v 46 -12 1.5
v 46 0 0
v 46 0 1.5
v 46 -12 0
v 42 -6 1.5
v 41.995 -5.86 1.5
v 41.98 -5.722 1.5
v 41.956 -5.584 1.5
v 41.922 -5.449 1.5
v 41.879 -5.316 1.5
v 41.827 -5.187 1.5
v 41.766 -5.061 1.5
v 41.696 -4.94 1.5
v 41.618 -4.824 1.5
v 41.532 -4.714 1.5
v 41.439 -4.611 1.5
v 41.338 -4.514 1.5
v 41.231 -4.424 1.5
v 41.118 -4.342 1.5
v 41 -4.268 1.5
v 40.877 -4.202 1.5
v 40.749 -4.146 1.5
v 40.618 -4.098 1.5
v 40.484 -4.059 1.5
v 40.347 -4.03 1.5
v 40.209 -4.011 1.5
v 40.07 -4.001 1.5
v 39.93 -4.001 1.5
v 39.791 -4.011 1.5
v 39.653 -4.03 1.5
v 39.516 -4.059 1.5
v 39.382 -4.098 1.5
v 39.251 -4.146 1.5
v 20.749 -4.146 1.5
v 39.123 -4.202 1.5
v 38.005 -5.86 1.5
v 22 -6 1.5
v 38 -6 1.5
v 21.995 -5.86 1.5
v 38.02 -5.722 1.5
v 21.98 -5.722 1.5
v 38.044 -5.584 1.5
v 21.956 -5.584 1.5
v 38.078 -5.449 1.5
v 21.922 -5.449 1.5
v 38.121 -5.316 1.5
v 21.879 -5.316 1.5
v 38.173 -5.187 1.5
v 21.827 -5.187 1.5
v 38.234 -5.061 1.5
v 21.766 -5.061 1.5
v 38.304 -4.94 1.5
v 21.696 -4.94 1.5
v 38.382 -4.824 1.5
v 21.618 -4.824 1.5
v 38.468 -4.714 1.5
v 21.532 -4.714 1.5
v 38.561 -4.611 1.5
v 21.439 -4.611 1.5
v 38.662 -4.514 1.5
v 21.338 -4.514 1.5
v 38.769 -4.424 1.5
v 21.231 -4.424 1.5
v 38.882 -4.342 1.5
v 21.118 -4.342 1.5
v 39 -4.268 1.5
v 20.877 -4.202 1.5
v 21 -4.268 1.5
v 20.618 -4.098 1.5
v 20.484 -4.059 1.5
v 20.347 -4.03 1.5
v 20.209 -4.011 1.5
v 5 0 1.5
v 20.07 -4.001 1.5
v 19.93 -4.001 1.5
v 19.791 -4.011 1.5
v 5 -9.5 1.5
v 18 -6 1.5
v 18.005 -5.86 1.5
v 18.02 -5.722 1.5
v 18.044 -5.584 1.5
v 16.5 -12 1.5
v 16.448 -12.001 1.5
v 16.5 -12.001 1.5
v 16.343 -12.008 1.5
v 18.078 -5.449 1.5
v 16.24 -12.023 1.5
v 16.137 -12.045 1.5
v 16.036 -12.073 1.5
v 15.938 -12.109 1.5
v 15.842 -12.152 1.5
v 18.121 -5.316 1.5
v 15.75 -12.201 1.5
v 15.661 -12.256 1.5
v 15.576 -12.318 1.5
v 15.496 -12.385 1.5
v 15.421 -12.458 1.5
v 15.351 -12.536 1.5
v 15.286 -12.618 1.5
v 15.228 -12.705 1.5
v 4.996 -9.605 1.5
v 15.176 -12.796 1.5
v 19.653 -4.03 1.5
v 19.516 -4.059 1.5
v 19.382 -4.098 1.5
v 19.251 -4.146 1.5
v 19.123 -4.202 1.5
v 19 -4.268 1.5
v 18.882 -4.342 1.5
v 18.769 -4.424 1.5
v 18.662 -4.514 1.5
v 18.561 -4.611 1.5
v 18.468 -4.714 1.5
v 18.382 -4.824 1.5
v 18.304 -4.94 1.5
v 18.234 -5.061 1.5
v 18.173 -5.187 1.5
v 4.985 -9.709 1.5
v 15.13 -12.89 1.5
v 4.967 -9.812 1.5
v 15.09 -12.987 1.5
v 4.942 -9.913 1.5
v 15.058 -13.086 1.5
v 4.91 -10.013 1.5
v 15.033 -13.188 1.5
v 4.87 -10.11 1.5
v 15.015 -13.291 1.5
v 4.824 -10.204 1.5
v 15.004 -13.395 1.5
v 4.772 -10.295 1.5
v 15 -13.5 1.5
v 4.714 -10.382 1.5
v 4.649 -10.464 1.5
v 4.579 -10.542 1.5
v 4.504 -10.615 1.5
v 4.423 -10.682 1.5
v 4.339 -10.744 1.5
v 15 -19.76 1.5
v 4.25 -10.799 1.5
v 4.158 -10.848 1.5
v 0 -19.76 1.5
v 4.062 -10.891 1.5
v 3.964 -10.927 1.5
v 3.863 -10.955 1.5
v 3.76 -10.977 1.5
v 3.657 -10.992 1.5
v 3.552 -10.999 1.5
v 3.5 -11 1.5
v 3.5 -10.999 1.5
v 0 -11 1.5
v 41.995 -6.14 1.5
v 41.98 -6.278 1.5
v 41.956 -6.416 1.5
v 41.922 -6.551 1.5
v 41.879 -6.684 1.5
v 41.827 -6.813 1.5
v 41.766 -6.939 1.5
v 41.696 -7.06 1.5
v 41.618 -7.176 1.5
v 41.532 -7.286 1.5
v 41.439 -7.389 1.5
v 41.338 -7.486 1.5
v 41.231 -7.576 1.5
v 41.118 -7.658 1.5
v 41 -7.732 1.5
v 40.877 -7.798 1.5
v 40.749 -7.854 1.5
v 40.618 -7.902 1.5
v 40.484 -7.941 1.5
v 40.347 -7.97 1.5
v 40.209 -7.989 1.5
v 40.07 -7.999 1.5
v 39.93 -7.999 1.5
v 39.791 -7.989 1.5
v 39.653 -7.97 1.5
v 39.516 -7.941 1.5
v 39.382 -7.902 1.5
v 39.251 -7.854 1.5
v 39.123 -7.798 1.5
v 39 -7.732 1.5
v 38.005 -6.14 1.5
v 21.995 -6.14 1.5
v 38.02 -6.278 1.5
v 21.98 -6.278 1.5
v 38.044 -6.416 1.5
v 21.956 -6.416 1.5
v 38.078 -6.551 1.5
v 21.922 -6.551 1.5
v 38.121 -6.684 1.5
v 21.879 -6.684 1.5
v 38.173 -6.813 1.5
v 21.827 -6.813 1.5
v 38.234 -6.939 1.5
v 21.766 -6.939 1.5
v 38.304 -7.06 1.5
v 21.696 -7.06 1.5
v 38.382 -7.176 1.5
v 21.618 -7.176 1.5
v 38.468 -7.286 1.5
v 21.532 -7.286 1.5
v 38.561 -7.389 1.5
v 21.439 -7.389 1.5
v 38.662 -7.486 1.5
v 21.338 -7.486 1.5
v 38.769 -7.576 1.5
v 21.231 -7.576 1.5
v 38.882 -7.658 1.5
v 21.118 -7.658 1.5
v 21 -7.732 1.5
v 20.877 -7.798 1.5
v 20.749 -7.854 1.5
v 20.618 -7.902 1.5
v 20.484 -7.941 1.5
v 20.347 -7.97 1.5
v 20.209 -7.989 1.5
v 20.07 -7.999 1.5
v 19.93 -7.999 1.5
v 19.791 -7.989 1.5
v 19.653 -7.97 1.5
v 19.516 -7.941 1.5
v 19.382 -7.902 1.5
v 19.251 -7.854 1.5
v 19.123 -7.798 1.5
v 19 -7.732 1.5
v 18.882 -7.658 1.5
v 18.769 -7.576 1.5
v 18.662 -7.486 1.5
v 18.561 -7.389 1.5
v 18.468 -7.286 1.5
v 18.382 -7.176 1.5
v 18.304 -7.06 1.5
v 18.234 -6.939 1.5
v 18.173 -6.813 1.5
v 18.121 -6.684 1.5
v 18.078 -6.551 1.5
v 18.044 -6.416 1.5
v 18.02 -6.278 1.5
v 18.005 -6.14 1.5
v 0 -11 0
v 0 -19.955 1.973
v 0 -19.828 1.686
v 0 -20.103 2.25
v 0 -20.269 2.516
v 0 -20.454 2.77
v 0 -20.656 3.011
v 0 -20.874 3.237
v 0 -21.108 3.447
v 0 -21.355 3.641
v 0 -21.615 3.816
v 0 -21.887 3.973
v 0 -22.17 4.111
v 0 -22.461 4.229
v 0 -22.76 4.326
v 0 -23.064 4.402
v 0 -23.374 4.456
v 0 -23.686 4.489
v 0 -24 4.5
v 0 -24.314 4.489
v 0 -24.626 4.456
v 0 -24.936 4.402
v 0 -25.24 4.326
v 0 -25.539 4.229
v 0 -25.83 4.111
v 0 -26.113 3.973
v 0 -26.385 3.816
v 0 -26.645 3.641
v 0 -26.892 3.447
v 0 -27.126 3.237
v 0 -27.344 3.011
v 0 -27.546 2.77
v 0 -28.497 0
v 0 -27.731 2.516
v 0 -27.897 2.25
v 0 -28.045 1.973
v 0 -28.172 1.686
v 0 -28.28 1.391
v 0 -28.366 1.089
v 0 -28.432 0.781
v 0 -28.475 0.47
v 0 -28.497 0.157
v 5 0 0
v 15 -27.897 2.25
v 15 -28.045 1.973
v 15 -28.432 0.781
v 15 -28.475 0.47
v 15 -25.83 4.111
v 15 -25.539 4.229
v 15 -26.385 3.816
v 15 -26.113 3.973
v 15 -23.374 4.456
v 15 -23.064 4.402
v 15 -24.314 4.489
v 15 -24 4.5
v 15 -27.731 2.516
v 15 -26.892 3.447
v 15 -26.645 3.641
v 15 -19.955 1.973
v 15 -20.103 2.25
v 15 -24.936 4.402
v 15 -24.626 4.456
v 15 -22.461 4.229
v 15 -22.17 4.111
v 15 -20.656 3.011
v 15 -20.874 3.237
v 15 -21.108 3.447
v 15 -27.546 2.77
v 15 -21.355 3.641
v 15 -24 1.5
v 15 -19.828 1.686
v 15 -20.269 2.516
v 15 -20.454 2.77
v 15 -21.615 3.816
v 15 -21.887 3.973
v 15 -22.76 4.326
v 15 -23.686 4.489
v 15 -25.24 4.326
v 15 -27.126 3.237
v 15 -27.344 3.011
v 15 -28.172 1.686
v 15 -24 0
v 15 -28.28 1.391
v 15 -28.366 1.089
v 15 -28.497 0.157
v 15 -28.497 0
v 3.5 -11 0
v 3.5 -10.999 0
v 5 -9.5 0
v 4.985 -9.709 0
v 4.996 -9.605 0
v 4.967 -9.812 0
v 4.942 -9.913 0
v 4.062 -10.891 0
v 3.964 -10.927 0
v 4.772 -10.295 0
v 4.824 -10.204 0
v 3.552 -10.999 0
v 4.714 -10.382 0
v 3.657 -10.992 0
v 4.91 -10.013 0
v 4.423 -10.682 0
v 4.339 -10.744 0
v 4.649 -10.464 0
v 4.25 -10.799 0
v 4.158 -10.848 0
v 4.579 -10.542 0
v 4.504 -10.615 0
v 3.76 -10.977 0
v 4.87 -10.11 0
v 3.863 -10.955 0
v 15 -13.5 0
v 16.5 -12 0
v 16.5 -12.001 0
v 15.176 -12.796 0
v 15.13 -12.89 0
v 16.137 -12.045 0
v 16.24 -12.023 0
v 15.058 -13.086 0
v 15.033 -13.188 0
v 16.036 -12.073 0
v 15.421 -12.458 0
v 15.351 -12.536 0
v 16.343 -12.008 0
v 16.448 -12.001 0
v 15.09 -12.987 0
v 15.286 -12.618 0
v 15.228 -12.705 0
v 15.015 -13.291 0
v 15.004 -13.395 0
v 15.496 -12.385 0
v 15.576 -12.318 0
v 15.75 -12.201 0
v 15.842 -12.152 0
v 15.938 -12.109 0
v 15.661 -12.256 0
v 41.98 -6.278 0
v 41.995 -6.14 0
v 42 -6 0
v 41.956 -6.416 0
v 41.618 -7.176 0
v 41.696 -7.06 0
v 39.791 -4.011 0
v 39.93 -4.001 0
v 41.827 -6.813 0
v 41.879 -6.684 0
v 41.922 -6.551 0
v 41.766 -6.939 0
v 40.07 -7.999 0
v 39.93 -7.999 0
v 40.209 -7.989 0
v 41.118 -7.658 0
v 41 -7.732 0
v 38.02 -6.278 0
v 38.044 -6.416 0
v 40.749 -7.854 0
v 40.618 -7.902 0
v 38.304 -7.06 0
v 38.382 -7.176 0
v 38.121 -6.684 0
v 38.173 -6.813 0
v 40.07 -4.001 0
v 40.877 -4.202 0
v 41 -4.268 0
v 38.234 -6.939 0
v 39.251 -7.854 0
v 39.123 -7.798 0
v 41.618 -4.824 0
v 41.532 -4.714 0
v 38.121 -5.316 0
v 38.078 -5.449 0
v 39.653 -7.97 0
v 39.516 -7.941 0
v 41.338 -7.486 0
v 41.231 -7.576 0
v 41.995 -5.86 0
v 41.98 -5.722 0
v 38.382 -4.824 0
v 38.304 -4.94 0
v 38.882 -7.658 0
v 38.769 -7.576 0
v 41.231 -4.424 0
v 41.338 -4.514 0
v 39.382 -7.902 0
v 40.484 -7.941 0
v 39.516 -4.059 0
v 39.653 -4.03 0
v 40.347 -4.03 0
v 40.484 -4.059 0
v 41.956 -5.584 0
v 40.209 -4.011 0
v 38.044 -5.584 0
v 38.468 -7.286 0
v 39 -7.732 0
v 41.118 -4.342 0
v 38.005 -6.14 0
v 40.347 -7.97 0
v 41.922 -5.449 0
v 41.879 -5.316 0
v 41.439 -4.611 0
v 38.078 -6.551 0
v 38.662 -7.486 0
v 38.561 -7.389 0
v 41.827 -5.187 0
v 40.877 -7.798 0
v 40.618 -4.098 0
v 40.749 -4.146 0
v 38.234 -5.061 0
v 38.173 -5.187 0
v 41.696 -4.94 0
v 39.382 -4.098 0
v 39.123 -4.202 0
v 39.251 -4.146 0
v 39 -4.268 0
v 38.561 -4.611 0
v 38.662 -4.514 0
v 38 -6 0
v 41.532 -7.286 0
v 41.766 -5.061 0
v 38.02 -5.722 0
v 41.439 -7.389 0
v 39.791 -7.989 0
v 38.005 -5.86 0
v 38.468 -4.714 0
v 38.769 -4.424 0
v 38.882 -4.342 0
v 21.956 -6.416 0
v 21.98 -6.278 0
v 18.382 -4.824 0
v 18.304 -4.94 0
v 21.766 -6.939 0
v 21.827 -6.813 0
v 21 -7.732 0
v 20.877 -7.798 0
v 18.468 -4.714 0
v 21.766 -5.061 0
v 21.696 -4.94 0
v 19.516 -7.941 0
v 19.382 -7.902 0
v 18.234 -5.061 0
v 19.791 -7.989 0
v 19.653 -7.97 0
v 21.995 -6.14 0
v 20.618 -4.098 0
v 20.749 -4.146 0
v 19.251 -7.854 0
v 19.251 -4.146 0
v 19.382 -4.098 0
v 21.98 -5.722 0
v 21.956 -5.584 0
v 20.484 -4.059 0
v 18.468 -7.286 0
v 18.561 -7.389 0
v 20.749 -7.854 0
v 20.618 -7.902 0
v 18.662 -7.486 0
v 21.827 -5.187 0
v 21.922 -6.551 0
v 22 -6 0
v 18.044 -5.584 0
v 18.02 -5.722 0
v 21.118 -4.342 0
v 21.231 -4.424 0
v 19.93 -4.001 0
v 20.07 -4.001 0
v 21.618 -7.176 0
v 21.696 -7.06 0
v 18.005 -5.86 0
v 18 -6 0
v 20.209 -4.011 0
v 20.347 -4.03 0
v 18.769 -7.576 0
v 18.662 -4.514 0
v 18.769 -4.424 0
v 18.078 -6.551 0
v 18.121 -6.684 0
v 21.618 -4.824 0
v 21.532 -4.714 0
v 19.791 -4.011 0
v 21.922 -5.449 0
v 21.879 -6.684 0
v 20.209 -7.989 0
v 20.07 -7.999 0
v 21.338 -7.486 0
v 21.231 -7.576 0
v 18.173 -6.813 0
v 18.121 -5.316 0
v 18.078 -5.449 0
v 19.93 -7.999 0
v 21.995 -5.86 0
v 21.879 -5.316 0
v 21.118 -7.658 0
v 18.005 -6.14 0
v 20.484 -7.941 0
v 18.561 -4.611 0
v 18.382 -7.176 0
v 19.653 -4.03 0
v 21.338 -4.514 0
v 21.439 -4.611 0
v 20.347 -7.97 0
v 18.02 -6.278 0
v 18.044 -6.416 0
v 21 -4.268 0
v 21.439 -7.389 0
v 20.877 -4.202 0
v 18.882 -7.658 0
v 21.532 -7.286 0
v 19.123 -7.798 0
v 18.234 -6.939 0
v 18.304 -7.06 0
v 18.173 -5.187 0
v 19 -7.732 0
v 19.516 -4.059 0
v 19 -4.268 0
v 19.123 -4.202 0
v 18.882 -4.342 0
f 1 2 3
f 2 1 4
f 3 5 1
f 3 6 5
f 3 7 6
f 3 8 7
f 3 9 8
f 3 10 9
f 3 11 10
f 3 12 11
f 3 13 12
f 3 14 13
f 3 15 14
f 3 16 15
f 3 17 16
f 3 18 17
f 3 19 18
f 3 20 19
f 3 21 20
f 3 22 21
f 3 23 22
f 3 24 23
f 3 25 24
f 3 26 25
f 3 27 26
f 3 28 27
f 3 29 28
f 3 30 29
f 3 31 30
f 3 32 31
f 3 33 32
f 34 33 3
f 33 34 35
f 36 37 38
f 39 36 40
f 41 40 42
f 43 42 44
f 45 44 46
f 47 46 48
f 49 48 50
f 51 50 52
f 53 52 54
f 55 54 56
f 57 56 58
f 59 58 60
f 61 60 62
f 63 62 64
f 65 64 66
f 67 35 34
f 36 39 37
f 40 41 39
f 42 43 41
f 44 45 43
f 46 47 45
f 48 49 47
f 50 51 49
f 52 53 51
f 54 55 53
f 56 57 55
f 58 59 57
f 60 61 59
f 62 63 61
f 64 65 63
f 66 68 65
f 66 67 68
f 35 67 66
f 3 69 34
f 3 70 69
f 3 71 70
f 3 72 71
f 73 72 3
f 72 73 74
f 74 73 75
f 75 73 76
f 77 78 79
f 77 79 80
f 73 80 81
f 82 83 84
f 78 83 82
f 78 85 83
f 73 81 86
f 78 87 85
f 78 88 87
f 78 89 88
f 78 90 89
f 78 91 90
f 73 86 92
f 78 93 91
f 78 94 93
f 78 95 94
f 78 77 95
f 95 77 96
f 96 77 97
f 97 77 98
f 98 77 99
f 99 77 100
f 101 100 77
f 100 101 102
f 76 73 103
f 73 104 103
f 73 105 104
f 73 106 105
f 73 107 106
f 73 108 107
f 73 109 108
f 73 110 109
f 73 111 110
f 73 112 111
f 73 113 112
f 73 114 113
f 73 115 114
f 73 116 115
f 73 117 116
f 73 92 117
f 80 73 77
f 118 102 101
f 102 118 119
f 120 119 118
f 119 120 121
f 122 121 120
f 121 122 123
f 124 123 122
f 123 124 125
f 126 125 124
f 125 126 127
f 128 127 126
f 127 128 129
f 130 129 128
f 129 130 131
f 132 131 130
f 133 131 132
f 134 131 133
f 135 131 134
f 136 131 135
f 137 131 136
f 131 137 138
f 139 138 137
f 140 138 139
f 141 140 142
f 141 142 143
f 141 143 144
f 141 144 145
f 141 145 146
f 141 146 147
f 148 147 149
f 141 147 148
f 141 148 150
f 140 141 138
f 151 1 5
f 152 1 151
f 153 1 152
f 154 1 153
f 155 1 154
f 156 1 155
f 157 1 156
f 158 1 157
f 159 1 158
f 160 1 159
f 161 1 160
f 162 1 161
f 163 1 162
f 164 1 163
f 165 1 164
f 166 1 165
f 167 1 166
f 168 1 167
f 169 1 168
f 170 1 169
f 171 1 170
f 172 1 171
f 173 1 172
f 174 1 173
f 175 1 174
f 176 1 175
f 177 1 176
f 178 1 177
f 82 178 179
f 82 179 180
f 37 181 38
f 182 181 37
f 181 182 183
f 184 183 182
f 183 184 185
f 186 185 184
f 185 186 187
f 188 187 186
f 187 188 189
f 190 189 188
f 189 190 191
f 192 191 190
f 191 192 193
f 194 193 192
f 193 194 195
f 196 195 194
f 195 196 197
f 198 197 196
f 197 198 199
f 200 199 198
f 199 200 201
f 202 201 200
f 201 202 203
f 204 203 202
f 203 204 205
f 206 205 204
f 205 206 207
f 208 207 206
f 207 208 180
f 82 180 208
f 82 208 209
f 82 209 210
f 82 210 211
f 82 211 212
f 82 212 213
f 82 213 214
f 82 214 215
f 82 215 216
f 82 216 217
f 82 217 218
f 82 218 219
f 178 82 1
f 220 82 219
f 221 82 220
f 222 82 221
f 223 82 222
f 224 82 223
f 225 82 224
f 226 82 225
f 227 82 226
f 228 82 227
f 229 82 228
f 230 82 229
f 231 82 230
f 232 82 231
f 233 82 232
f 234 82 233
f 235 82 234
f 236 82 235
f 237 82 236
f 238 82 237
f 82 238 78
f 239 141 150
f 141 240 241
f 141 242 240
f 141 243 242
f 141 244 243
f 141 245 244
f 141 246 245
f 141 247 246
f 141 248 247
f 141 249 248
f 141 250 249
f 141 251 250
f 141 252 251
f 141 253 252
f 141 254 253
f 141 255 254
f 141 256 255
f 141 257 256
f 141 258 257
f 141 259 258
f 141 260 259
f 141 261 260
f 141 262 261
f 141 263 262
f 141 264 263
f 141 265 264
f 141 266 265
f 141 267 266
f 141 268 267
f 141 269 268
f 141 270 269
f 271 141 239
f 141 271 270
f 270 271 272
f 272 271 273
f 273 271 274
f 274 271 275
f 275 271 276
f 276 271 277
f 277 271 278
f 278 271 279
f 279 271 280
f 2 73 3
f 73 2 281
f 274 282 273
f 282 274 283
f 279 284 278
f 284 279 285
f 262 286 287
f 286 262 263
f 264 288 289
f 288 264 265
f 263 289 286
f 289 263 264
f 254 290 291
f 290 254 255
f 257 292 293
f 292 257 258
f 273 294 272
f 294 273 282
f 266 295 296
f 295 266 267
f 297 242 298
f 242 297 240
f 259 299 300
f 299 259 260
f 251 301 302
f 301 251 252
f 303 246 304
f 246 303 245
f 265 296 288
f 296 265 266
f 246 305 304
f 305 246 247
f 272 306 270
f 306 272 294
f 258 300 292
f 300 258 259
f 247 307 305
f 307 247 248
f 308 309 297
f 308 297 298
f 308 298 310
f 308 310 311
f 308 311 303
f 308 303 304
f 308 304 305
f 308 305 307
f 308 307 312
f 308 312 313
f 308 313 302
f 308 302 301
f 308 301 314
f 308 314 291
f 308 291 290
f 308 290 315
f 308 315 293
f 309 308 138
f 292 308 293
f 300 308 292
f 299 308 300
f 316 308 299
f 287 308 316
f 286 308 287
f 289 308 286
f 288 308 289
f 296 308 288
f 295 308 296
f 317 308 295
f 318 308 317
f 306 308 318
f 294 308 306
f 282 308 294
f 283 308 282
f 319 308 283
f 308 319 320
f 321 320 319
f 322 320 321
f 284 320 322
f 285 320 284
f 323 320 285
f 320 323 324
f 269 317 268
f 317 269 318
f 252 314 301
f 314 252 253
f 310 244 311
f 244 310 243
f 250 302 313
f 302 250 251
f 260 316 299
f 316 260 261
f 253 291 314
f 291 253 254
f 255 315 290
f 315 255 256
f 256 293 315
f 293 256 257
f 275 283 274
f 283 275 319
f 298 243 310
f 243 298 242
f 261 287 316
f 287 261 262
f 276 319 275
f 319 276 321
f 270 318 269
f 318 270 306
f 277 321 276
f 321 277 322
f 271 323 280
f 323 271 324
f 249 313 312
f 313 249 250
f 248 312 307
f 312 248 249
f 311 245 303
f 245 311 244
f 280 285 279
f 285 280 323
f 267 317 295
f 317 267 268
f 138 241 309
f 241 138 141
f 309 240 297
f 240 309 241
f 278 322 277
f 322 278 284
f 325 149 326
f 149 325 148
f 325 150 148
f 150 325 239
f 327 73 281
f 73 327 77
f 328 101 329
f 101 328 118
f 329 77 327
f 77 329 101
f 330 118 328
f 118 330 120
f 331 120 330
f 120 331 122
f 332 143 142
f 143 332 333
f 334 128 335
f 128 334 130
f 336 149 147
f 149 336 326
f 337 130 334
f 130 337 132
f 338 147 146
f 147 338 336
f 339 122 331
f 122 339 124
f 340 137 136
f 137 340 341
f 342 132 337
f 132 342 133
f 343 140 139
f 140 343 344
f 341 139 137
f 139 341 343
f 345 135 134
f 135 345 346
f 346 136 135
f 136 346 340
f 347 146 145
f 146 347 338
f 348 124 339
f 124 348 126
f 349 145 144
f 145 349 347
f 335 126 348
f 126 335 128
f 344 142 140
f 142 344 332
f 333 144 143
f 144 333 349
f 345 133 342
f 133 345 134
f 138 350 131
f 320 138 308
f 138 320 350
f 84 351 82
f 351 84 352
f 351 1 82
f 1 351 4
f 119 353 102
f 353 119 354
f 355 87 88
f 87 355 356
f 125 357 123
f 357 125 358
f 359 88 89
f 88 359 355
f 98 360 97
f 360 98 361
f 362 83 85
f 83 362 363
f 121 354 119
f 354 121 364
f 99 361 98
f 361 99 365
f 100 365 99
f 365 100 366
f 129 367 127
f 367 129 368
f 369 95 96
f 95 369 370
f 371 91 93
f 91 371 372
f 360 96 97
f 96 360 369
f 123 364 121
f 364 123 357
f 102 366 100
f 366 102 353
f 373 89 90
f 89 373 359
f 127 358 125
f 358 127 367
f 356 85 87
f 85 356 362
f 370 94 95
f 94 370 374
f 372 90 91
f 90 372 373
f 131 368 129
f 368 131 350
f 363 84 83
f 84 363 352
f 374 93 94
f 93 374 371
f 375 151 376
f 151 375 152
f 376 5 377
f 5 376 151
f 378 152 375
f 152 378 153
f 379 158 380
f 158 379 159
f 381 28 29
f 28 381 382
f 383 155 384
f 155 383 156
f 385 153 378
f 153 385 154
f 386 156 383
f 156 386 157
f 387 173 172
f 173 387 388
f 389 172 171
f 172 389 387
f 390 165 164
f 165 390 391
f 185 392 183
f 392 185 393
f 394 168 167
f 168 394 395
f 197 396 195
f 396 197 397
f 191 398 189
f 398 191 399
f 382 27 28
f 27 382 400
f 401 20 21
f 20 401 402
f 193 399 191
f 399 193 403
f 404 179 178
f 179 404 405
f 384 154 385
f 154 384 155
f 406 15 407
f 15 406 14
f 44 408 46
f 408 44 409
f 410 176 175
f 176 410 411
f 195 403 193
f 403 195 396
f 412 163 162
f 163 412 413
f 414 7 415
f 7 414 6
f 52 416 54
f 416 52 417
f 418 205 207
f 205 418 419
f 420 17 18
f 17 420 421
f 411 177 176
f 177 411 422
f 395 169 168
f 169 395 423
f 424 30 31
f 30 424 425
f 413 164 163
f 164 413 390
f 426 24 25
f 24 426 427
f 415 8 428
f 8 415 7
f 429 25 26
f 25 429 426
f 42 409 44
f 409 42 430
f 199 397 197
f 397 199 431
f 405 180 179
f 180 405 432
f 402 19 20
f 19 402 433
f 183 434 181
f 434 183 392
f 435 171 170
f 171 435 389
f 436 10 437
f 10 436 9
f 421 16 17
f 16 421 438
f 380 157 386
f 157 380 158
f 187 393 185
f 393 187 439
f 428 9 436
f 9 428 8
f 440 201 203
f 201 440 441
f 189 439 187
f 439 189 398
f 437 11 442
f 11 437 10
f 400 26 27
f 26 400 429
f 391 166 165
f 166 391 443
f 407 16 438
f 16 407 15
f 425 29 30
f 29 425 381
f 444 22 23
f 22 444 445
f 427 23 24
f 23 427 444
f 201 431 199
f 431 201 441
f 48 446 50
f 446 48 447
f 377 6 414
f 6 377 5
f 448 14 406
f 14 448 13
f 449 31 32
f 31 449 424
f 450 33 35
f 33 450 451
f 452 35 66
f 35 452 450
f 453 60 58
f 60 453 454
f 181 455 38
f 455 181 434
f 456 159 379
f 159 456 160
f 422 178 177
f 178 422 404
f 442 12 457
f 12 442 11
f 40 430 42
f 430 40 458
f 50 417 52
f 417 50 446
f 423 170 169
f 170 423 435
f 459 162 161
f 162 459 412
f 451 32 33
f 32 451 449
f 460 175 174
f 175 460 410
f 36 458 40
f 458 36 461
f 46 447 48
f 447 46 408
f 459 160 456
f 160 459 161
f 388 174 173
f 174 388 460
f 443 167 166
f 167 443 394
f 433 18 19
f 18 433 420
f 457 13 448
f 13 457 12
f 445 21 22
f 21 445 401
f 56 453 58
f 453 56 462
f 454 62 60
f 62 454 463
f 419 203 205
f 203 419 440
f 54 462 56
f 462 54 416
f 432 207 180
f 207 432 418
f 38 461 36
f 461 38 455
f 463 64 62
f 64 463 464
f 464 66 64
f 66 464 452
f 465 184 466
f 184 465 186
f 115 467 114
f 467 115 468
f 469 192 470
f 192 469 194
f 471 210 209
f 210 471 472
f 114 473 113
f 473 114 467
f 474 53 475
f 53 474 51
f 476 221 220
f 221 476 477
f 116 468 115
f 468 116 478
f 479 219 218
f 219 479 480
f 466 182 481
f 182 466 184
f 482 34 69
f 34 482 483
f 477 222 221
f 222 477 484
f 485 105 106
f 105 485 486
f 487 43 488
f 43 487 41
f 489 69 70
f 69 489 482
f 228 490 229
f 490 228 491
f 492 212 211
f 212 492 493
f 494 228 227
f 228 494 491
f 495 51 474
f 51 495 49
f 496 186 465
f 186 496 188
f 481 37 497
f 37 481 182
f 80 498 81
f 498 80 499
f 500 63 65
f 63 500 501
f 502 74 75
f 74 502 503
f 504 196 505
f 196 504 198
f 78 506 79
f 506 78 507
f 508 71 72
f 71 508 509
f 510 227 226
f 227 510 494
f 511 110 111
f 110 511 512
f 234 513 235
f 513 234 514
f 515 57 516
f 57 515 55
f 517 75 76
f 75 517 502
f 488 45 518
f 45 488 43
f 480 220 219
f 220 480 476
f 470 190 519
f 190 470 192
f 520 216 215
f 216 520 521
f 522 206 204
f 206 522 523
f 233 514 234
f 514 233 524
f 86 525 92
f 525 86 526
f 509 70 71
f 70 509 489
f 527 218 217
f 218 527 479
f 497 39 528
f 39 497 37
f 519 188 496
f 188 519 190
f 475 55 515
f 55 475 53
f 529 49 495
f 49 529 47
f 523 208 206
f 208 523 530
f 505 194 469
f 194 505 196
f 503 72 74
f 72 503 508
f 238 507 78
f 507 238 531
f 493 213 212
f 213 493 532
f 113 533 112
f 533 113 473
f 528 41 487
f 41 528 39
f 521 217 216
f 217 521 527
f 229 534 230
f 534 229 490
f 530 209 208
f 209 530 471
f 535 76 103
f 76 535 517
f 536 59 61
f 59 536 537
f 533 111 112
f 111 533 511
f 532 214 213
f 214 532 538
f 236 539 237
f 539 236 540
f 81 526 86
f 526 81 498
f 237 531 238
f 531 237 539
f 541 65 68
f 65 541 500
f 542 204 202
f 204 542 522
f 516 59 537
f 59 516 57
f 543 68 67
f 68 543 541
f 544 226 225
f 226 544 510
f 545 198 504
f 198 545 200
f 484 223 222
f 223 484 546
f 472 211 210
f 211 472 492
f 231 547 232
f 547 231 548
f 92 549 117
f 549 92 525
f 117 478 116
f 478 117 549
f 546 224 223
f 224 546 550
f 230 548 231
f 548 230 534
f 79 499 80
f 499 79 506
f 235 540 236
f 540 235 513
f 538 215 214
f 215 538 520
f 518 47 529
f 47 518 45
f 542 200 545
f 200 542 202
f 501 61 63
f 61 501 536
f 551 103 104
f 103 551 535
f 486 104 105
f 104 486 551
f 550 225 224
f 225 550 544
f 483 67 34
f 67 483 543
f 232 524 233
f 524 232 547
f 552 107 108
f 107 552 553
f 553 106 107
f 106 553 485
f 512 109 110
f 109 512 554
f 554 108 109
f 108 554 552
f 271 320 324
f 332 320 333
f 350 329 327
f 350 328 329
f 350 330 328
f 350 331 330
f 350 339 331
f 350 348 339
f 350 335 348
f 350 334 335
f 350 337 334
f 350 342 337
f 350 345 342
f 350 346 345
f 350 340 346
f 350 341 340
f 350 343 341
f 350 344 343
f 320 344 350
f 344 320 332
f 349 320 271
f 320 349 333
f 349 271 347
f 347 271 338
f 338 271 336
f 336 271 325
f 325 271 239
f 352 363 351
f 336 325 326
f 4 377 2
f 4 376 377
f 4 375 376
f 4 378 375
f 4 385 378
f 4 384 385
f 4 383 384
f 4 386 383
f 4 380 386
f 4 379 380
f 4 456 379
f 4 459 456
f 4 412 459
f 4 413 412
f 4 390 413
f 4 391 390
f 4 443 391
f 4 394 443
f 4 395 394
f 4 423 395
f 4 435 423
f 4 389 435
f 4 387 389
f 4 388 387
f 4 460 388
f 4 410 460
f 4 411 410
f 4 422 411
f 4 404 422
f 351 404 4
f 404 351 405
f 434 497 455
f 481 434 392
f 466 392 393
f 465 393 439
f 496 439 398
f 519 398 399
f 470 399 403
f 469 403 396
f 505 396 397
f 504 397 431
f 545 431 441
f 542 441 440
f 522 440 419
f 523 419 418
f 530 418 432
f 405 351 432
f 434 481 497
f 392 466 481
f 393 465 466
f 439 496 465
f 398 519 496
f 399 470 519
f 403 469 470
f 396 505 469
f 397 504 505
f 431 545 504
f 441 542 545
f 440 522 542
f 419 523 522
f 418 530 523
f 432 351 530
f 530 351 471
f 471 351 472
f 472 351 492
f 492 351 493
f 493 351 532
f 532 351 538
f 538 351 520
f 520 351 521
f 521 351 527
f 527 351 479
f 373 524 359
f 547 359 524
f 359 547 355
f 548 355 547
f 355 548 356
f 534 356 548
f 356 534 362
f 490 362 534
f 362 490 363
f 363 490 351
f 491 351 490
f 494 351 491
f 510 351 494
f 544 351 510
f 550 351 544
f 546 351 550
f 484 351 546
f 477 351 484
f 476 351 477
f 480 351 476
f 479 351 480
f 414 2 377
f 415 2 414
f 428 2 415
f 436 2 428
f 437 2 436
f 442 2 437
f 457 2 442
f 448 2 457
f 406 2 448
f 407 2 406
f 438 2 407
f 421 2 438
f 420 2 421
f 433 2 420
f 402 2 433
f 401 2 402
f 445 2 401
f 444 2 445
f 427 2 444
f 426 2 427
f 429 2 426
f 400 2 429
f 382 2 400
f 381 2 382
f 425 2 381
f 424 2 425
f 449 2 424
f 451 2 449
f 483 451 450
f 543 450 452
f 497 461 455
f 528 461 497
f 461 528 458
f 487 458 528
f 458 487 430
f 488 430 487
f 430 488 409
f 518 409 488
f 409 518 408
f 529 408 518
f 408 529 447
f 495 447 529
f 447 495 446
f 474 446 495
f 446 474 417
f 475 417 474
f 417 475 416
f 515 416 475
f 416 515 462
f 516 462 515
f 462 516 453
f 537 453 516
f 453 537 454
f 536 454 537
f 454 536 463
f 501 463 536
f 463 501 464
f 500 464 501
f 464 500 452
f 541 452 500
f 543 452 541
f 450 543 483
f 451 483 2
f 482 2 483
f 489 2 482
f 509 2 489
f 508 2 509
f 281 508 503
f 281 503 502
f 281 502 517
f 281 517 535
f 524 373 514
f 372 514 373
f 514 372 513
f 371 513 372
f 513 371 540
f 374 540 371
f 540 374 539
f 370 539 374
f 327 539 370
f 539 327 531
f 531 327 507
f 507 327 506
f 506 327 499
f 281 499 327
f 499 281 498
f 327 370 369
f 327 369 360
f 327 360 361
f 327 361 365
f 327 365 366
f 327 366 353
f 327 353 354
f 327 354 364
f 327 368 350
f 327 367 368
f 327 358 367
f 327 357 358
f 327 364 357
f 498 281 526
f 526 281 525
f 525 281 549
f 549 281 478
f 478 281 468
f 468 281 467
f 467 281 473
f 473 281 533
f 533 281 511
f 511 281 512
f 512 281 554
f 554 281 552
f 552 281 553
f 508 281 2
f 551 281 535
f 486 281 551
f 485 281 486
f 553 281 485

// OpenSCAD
$fn=90;

module hinge() {

    difference() {
        
        union() {
            cube( [ 46.0, 24, 3.0 ] );
            translate( [ 0, 24, 3/2 ] ) {
                rotate( [ 0, 90, 0 ] ) {
                    cylinder( d = 9, h = 15 );
                }
            }
        }
        
        union() {
            cube( [ 5.0-1.5, 11.0, 3.0 ] );
            cube( [ 5.0, 11.0-1.5, 3.0 ] );
            translate( [ 5.0-1.5, 11.0-1.5, 0 ] ) {
                cylinder( r = 1.5, h = 3.0 );
            }
        }

        translate( [ 15.0, 12.0, 0 ] ) {
            union() {
                translate( [ 0, 1.5, 0 ] ) {
                    cube( [ 31.0, 12.0-1.5, 3 ] );
                }
                translate( [ 1.5, 0, 0 ] ) {
                    cube( [ 31.0-1.5, 12.0, 3 ] );
                }
                translate( [ 1.5, 1.5, 0 ] ) {
                    cylinder( r = 1.5, h = 3.0 );
                }
            }
        }
        
        translate( [ 46.0 - 6.0, 6.0, 0 ] ) {
            cylinder( d = 4.0, h = 3 );
        }
        translate( [ 46.0 - 26.0, 6.0, 0 ] ) {
            cylinder( d = 4.0, h = 3 );
        }
        
    *   translate( [ 0, 24, 1.5 ] ) { 
            rotate( [ 0, 90, 0 ] ) {
                cylinder( d = 3, h = 26 );
            }
        }



    }
}

*projection() {
    translate( [ 0, 0, -1.5 ] ) {
        difference() {
            hinge();
            translate( [ 0, 24, 3/2 ] ) {
                rotate( [ 0, 90, 0 ] ) {
                    cylinder( d = 9, h = 15 );
                }
            }
        }
    }
}

intersection() {
    rotate( [ 180, 0, 0 ] ) {
        translate( [ 0, 0, -1.5 ] ) {
            hinge();
        }
    }
    translate( [ -50, -50, 0 ] ) {
        cube( [ 100, 100, 100 ] );
    }
}
